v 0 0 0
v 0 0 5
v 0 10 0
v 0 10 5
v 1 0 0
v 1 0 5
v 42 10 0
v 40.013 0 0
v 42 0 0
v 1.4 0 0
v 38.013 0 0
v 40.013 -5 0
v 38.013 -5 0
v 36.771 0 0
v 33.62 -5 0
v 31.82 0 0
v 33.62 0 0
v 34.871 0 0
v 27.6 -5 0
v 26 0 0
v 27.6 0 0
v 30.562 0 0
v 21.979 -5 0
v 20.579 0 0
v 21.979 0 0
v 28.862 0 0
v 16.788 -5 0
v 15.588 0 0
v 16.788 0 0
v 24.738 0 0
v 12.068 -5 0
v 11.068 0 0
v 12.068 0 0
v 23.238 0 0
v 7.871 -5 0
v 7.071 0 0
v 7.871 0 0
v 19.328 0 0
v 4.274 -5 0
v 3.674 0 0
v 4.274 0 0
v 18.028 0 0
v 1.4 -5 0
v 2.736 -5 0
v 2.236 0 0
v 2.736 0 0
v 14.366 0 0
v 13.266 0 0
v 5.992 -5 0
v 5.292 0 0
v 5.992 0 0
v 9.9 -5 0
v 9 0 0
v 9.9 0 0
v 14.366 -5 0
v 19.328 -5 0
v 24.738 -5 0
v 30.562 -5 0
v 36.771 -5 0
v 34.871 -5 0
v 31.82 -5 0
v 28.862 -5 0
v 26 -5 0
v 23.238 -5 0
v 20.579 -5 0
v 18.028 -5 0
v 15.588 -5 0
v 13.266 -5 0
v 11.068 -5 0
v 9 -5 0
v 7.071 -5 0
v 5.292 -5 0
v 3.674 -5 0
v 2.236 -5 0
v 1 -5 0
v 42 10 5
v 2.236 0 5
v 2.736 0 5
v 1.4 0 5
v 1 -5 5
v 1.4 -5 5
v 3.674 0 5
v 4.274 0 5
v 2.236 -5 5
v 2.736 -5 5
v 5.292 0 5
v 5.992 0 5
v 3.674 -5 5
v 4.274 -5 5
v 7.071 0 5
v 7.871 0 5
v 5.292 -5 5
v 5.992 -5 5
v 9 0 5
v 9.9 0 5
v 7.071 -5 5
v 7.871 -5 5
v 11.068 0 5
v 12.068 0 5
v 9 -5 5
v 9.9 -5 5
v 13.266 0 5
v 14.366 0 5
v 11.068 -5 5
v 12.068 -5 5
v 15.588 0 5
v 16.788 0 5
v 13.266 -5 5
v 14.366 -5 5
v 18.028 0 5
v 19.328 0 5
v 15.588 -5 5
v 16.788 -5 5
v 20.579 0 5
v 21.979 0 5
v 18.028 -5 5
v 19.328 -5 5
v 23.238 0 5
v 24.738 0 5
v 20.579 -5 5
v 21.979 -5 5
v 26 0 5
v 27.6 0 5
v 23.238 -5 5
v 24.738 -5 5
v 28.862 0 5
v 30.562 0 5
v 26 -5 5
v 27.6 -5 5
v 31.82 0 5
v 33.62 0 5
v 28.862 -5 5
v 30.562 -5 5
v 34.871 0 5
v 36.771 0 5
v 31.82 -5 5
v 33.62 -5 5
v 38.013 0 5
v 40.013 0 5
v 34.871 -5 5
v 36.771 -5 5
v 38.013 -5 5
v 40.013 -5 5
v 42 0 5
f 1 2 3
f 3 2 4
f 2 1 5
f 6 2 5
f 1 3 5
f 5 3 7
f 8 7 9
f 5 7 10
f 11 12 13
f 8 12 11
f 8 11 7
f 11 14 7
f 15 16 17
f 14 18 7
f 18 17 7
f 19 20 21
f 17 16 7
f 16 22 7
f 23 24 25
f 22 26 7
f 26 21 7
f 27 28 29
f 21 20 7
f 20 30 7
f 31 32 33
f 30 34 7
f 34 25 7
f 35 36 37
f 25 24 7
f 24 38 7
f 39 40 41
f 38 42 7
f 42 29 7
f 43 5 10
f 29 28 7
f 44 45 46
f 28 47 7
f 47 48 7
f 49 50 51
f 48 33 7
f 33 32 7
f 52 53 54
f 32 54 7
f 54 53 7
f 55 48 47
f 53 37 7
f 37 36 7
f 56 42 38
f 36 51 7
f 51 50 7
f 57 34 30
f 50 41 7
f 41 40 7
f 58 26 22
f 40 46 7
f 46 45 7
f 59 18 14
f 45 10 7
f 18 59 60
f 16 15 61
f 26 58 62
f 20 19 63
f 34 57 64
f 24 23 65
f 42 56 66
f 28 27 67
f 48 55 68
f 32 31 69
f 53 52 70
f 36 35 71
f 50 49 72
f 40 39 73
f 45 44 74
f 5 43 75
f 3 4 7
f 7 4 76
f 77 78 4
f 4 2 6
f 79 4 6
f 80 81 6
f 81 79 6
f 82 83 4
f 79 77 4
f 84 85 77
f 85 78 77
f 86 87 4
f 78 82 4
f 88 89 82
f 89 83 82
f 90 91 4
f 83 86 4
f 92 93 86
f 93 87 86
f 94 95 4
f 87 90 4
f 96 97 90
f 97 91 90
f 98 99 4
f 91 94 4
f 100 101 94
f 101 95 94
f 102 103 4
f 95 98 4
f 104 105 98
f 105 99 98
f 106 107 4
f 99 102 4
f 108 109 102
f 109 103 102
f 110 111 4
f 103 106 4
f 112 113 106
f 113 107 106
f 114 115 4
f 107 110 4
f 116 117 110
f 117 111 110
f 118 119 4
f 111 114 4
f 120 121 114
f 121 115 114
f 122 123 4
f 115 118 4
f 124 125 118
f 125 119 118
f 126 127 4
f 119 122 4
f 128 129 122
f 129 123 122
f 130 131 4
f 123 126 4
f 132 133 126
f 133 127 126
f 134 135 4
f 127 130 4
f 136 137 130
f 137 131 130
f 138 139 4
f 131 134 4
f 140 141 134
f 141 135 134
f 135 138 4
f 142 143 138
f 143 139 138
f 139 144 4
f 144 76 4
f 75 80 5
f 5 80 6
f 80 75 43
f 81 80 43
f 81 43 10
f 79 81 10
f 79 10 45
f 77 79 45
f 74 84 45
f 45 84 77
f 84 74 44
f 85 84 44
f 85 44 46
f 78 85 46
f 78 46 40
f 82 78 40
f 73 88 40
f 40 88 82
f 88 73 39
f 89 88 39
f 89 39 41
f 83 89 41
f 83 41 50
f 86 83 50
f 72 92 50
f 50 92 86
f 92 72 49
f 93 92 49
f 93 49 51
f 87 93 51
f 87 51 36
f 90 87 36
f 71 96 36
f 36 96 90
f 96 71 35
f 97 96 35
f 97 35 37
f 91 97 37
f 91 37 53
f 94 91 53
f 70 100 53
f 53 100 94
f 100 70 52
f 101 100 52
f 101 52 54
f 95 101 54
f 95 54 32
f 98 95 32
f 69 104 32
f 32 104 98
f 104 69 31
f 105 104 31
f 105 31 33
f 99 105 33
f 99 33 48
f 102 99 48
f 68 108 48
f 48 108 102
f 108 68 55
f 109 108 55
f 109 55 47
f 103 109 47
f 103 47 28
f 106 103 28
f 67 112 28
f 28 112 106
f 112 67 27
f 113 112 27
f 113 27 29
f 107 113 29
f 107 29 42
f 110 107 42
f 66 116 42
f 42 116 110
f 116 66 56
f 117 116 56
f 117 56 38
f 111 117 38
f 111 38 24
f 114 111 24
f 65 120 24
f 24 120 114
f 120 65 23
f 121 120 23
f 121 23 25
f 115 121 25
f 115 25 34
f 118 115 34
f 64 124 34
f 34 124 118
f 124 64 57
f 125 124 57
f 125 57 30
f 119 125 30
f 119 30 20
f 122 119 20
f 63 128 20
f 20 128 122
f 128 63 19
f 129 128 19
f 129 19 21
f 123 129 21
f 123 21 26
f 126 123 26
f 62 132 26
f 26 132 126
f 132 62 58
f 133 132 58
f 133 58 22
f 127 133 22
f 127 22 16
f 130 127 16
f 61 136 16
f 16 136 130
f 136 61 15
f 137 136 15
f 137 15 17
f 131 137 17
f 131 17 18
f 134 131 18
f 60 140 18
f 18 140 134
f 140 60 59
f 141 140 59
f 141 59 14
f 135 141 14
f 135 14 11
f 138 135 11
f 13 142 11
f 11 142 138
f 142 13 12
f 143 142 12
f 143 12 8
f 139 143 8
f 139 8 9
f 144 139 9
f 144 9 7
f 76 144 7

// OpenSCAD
x0=3;
union() {
 	cube([42,10,5]);
 	for(x=[x0+1:20]) {
 		translate([(x-x0)*(0.5*sqrt(x)),-5,0])
 		#cube([x/10,10,5]);
 	}
}
